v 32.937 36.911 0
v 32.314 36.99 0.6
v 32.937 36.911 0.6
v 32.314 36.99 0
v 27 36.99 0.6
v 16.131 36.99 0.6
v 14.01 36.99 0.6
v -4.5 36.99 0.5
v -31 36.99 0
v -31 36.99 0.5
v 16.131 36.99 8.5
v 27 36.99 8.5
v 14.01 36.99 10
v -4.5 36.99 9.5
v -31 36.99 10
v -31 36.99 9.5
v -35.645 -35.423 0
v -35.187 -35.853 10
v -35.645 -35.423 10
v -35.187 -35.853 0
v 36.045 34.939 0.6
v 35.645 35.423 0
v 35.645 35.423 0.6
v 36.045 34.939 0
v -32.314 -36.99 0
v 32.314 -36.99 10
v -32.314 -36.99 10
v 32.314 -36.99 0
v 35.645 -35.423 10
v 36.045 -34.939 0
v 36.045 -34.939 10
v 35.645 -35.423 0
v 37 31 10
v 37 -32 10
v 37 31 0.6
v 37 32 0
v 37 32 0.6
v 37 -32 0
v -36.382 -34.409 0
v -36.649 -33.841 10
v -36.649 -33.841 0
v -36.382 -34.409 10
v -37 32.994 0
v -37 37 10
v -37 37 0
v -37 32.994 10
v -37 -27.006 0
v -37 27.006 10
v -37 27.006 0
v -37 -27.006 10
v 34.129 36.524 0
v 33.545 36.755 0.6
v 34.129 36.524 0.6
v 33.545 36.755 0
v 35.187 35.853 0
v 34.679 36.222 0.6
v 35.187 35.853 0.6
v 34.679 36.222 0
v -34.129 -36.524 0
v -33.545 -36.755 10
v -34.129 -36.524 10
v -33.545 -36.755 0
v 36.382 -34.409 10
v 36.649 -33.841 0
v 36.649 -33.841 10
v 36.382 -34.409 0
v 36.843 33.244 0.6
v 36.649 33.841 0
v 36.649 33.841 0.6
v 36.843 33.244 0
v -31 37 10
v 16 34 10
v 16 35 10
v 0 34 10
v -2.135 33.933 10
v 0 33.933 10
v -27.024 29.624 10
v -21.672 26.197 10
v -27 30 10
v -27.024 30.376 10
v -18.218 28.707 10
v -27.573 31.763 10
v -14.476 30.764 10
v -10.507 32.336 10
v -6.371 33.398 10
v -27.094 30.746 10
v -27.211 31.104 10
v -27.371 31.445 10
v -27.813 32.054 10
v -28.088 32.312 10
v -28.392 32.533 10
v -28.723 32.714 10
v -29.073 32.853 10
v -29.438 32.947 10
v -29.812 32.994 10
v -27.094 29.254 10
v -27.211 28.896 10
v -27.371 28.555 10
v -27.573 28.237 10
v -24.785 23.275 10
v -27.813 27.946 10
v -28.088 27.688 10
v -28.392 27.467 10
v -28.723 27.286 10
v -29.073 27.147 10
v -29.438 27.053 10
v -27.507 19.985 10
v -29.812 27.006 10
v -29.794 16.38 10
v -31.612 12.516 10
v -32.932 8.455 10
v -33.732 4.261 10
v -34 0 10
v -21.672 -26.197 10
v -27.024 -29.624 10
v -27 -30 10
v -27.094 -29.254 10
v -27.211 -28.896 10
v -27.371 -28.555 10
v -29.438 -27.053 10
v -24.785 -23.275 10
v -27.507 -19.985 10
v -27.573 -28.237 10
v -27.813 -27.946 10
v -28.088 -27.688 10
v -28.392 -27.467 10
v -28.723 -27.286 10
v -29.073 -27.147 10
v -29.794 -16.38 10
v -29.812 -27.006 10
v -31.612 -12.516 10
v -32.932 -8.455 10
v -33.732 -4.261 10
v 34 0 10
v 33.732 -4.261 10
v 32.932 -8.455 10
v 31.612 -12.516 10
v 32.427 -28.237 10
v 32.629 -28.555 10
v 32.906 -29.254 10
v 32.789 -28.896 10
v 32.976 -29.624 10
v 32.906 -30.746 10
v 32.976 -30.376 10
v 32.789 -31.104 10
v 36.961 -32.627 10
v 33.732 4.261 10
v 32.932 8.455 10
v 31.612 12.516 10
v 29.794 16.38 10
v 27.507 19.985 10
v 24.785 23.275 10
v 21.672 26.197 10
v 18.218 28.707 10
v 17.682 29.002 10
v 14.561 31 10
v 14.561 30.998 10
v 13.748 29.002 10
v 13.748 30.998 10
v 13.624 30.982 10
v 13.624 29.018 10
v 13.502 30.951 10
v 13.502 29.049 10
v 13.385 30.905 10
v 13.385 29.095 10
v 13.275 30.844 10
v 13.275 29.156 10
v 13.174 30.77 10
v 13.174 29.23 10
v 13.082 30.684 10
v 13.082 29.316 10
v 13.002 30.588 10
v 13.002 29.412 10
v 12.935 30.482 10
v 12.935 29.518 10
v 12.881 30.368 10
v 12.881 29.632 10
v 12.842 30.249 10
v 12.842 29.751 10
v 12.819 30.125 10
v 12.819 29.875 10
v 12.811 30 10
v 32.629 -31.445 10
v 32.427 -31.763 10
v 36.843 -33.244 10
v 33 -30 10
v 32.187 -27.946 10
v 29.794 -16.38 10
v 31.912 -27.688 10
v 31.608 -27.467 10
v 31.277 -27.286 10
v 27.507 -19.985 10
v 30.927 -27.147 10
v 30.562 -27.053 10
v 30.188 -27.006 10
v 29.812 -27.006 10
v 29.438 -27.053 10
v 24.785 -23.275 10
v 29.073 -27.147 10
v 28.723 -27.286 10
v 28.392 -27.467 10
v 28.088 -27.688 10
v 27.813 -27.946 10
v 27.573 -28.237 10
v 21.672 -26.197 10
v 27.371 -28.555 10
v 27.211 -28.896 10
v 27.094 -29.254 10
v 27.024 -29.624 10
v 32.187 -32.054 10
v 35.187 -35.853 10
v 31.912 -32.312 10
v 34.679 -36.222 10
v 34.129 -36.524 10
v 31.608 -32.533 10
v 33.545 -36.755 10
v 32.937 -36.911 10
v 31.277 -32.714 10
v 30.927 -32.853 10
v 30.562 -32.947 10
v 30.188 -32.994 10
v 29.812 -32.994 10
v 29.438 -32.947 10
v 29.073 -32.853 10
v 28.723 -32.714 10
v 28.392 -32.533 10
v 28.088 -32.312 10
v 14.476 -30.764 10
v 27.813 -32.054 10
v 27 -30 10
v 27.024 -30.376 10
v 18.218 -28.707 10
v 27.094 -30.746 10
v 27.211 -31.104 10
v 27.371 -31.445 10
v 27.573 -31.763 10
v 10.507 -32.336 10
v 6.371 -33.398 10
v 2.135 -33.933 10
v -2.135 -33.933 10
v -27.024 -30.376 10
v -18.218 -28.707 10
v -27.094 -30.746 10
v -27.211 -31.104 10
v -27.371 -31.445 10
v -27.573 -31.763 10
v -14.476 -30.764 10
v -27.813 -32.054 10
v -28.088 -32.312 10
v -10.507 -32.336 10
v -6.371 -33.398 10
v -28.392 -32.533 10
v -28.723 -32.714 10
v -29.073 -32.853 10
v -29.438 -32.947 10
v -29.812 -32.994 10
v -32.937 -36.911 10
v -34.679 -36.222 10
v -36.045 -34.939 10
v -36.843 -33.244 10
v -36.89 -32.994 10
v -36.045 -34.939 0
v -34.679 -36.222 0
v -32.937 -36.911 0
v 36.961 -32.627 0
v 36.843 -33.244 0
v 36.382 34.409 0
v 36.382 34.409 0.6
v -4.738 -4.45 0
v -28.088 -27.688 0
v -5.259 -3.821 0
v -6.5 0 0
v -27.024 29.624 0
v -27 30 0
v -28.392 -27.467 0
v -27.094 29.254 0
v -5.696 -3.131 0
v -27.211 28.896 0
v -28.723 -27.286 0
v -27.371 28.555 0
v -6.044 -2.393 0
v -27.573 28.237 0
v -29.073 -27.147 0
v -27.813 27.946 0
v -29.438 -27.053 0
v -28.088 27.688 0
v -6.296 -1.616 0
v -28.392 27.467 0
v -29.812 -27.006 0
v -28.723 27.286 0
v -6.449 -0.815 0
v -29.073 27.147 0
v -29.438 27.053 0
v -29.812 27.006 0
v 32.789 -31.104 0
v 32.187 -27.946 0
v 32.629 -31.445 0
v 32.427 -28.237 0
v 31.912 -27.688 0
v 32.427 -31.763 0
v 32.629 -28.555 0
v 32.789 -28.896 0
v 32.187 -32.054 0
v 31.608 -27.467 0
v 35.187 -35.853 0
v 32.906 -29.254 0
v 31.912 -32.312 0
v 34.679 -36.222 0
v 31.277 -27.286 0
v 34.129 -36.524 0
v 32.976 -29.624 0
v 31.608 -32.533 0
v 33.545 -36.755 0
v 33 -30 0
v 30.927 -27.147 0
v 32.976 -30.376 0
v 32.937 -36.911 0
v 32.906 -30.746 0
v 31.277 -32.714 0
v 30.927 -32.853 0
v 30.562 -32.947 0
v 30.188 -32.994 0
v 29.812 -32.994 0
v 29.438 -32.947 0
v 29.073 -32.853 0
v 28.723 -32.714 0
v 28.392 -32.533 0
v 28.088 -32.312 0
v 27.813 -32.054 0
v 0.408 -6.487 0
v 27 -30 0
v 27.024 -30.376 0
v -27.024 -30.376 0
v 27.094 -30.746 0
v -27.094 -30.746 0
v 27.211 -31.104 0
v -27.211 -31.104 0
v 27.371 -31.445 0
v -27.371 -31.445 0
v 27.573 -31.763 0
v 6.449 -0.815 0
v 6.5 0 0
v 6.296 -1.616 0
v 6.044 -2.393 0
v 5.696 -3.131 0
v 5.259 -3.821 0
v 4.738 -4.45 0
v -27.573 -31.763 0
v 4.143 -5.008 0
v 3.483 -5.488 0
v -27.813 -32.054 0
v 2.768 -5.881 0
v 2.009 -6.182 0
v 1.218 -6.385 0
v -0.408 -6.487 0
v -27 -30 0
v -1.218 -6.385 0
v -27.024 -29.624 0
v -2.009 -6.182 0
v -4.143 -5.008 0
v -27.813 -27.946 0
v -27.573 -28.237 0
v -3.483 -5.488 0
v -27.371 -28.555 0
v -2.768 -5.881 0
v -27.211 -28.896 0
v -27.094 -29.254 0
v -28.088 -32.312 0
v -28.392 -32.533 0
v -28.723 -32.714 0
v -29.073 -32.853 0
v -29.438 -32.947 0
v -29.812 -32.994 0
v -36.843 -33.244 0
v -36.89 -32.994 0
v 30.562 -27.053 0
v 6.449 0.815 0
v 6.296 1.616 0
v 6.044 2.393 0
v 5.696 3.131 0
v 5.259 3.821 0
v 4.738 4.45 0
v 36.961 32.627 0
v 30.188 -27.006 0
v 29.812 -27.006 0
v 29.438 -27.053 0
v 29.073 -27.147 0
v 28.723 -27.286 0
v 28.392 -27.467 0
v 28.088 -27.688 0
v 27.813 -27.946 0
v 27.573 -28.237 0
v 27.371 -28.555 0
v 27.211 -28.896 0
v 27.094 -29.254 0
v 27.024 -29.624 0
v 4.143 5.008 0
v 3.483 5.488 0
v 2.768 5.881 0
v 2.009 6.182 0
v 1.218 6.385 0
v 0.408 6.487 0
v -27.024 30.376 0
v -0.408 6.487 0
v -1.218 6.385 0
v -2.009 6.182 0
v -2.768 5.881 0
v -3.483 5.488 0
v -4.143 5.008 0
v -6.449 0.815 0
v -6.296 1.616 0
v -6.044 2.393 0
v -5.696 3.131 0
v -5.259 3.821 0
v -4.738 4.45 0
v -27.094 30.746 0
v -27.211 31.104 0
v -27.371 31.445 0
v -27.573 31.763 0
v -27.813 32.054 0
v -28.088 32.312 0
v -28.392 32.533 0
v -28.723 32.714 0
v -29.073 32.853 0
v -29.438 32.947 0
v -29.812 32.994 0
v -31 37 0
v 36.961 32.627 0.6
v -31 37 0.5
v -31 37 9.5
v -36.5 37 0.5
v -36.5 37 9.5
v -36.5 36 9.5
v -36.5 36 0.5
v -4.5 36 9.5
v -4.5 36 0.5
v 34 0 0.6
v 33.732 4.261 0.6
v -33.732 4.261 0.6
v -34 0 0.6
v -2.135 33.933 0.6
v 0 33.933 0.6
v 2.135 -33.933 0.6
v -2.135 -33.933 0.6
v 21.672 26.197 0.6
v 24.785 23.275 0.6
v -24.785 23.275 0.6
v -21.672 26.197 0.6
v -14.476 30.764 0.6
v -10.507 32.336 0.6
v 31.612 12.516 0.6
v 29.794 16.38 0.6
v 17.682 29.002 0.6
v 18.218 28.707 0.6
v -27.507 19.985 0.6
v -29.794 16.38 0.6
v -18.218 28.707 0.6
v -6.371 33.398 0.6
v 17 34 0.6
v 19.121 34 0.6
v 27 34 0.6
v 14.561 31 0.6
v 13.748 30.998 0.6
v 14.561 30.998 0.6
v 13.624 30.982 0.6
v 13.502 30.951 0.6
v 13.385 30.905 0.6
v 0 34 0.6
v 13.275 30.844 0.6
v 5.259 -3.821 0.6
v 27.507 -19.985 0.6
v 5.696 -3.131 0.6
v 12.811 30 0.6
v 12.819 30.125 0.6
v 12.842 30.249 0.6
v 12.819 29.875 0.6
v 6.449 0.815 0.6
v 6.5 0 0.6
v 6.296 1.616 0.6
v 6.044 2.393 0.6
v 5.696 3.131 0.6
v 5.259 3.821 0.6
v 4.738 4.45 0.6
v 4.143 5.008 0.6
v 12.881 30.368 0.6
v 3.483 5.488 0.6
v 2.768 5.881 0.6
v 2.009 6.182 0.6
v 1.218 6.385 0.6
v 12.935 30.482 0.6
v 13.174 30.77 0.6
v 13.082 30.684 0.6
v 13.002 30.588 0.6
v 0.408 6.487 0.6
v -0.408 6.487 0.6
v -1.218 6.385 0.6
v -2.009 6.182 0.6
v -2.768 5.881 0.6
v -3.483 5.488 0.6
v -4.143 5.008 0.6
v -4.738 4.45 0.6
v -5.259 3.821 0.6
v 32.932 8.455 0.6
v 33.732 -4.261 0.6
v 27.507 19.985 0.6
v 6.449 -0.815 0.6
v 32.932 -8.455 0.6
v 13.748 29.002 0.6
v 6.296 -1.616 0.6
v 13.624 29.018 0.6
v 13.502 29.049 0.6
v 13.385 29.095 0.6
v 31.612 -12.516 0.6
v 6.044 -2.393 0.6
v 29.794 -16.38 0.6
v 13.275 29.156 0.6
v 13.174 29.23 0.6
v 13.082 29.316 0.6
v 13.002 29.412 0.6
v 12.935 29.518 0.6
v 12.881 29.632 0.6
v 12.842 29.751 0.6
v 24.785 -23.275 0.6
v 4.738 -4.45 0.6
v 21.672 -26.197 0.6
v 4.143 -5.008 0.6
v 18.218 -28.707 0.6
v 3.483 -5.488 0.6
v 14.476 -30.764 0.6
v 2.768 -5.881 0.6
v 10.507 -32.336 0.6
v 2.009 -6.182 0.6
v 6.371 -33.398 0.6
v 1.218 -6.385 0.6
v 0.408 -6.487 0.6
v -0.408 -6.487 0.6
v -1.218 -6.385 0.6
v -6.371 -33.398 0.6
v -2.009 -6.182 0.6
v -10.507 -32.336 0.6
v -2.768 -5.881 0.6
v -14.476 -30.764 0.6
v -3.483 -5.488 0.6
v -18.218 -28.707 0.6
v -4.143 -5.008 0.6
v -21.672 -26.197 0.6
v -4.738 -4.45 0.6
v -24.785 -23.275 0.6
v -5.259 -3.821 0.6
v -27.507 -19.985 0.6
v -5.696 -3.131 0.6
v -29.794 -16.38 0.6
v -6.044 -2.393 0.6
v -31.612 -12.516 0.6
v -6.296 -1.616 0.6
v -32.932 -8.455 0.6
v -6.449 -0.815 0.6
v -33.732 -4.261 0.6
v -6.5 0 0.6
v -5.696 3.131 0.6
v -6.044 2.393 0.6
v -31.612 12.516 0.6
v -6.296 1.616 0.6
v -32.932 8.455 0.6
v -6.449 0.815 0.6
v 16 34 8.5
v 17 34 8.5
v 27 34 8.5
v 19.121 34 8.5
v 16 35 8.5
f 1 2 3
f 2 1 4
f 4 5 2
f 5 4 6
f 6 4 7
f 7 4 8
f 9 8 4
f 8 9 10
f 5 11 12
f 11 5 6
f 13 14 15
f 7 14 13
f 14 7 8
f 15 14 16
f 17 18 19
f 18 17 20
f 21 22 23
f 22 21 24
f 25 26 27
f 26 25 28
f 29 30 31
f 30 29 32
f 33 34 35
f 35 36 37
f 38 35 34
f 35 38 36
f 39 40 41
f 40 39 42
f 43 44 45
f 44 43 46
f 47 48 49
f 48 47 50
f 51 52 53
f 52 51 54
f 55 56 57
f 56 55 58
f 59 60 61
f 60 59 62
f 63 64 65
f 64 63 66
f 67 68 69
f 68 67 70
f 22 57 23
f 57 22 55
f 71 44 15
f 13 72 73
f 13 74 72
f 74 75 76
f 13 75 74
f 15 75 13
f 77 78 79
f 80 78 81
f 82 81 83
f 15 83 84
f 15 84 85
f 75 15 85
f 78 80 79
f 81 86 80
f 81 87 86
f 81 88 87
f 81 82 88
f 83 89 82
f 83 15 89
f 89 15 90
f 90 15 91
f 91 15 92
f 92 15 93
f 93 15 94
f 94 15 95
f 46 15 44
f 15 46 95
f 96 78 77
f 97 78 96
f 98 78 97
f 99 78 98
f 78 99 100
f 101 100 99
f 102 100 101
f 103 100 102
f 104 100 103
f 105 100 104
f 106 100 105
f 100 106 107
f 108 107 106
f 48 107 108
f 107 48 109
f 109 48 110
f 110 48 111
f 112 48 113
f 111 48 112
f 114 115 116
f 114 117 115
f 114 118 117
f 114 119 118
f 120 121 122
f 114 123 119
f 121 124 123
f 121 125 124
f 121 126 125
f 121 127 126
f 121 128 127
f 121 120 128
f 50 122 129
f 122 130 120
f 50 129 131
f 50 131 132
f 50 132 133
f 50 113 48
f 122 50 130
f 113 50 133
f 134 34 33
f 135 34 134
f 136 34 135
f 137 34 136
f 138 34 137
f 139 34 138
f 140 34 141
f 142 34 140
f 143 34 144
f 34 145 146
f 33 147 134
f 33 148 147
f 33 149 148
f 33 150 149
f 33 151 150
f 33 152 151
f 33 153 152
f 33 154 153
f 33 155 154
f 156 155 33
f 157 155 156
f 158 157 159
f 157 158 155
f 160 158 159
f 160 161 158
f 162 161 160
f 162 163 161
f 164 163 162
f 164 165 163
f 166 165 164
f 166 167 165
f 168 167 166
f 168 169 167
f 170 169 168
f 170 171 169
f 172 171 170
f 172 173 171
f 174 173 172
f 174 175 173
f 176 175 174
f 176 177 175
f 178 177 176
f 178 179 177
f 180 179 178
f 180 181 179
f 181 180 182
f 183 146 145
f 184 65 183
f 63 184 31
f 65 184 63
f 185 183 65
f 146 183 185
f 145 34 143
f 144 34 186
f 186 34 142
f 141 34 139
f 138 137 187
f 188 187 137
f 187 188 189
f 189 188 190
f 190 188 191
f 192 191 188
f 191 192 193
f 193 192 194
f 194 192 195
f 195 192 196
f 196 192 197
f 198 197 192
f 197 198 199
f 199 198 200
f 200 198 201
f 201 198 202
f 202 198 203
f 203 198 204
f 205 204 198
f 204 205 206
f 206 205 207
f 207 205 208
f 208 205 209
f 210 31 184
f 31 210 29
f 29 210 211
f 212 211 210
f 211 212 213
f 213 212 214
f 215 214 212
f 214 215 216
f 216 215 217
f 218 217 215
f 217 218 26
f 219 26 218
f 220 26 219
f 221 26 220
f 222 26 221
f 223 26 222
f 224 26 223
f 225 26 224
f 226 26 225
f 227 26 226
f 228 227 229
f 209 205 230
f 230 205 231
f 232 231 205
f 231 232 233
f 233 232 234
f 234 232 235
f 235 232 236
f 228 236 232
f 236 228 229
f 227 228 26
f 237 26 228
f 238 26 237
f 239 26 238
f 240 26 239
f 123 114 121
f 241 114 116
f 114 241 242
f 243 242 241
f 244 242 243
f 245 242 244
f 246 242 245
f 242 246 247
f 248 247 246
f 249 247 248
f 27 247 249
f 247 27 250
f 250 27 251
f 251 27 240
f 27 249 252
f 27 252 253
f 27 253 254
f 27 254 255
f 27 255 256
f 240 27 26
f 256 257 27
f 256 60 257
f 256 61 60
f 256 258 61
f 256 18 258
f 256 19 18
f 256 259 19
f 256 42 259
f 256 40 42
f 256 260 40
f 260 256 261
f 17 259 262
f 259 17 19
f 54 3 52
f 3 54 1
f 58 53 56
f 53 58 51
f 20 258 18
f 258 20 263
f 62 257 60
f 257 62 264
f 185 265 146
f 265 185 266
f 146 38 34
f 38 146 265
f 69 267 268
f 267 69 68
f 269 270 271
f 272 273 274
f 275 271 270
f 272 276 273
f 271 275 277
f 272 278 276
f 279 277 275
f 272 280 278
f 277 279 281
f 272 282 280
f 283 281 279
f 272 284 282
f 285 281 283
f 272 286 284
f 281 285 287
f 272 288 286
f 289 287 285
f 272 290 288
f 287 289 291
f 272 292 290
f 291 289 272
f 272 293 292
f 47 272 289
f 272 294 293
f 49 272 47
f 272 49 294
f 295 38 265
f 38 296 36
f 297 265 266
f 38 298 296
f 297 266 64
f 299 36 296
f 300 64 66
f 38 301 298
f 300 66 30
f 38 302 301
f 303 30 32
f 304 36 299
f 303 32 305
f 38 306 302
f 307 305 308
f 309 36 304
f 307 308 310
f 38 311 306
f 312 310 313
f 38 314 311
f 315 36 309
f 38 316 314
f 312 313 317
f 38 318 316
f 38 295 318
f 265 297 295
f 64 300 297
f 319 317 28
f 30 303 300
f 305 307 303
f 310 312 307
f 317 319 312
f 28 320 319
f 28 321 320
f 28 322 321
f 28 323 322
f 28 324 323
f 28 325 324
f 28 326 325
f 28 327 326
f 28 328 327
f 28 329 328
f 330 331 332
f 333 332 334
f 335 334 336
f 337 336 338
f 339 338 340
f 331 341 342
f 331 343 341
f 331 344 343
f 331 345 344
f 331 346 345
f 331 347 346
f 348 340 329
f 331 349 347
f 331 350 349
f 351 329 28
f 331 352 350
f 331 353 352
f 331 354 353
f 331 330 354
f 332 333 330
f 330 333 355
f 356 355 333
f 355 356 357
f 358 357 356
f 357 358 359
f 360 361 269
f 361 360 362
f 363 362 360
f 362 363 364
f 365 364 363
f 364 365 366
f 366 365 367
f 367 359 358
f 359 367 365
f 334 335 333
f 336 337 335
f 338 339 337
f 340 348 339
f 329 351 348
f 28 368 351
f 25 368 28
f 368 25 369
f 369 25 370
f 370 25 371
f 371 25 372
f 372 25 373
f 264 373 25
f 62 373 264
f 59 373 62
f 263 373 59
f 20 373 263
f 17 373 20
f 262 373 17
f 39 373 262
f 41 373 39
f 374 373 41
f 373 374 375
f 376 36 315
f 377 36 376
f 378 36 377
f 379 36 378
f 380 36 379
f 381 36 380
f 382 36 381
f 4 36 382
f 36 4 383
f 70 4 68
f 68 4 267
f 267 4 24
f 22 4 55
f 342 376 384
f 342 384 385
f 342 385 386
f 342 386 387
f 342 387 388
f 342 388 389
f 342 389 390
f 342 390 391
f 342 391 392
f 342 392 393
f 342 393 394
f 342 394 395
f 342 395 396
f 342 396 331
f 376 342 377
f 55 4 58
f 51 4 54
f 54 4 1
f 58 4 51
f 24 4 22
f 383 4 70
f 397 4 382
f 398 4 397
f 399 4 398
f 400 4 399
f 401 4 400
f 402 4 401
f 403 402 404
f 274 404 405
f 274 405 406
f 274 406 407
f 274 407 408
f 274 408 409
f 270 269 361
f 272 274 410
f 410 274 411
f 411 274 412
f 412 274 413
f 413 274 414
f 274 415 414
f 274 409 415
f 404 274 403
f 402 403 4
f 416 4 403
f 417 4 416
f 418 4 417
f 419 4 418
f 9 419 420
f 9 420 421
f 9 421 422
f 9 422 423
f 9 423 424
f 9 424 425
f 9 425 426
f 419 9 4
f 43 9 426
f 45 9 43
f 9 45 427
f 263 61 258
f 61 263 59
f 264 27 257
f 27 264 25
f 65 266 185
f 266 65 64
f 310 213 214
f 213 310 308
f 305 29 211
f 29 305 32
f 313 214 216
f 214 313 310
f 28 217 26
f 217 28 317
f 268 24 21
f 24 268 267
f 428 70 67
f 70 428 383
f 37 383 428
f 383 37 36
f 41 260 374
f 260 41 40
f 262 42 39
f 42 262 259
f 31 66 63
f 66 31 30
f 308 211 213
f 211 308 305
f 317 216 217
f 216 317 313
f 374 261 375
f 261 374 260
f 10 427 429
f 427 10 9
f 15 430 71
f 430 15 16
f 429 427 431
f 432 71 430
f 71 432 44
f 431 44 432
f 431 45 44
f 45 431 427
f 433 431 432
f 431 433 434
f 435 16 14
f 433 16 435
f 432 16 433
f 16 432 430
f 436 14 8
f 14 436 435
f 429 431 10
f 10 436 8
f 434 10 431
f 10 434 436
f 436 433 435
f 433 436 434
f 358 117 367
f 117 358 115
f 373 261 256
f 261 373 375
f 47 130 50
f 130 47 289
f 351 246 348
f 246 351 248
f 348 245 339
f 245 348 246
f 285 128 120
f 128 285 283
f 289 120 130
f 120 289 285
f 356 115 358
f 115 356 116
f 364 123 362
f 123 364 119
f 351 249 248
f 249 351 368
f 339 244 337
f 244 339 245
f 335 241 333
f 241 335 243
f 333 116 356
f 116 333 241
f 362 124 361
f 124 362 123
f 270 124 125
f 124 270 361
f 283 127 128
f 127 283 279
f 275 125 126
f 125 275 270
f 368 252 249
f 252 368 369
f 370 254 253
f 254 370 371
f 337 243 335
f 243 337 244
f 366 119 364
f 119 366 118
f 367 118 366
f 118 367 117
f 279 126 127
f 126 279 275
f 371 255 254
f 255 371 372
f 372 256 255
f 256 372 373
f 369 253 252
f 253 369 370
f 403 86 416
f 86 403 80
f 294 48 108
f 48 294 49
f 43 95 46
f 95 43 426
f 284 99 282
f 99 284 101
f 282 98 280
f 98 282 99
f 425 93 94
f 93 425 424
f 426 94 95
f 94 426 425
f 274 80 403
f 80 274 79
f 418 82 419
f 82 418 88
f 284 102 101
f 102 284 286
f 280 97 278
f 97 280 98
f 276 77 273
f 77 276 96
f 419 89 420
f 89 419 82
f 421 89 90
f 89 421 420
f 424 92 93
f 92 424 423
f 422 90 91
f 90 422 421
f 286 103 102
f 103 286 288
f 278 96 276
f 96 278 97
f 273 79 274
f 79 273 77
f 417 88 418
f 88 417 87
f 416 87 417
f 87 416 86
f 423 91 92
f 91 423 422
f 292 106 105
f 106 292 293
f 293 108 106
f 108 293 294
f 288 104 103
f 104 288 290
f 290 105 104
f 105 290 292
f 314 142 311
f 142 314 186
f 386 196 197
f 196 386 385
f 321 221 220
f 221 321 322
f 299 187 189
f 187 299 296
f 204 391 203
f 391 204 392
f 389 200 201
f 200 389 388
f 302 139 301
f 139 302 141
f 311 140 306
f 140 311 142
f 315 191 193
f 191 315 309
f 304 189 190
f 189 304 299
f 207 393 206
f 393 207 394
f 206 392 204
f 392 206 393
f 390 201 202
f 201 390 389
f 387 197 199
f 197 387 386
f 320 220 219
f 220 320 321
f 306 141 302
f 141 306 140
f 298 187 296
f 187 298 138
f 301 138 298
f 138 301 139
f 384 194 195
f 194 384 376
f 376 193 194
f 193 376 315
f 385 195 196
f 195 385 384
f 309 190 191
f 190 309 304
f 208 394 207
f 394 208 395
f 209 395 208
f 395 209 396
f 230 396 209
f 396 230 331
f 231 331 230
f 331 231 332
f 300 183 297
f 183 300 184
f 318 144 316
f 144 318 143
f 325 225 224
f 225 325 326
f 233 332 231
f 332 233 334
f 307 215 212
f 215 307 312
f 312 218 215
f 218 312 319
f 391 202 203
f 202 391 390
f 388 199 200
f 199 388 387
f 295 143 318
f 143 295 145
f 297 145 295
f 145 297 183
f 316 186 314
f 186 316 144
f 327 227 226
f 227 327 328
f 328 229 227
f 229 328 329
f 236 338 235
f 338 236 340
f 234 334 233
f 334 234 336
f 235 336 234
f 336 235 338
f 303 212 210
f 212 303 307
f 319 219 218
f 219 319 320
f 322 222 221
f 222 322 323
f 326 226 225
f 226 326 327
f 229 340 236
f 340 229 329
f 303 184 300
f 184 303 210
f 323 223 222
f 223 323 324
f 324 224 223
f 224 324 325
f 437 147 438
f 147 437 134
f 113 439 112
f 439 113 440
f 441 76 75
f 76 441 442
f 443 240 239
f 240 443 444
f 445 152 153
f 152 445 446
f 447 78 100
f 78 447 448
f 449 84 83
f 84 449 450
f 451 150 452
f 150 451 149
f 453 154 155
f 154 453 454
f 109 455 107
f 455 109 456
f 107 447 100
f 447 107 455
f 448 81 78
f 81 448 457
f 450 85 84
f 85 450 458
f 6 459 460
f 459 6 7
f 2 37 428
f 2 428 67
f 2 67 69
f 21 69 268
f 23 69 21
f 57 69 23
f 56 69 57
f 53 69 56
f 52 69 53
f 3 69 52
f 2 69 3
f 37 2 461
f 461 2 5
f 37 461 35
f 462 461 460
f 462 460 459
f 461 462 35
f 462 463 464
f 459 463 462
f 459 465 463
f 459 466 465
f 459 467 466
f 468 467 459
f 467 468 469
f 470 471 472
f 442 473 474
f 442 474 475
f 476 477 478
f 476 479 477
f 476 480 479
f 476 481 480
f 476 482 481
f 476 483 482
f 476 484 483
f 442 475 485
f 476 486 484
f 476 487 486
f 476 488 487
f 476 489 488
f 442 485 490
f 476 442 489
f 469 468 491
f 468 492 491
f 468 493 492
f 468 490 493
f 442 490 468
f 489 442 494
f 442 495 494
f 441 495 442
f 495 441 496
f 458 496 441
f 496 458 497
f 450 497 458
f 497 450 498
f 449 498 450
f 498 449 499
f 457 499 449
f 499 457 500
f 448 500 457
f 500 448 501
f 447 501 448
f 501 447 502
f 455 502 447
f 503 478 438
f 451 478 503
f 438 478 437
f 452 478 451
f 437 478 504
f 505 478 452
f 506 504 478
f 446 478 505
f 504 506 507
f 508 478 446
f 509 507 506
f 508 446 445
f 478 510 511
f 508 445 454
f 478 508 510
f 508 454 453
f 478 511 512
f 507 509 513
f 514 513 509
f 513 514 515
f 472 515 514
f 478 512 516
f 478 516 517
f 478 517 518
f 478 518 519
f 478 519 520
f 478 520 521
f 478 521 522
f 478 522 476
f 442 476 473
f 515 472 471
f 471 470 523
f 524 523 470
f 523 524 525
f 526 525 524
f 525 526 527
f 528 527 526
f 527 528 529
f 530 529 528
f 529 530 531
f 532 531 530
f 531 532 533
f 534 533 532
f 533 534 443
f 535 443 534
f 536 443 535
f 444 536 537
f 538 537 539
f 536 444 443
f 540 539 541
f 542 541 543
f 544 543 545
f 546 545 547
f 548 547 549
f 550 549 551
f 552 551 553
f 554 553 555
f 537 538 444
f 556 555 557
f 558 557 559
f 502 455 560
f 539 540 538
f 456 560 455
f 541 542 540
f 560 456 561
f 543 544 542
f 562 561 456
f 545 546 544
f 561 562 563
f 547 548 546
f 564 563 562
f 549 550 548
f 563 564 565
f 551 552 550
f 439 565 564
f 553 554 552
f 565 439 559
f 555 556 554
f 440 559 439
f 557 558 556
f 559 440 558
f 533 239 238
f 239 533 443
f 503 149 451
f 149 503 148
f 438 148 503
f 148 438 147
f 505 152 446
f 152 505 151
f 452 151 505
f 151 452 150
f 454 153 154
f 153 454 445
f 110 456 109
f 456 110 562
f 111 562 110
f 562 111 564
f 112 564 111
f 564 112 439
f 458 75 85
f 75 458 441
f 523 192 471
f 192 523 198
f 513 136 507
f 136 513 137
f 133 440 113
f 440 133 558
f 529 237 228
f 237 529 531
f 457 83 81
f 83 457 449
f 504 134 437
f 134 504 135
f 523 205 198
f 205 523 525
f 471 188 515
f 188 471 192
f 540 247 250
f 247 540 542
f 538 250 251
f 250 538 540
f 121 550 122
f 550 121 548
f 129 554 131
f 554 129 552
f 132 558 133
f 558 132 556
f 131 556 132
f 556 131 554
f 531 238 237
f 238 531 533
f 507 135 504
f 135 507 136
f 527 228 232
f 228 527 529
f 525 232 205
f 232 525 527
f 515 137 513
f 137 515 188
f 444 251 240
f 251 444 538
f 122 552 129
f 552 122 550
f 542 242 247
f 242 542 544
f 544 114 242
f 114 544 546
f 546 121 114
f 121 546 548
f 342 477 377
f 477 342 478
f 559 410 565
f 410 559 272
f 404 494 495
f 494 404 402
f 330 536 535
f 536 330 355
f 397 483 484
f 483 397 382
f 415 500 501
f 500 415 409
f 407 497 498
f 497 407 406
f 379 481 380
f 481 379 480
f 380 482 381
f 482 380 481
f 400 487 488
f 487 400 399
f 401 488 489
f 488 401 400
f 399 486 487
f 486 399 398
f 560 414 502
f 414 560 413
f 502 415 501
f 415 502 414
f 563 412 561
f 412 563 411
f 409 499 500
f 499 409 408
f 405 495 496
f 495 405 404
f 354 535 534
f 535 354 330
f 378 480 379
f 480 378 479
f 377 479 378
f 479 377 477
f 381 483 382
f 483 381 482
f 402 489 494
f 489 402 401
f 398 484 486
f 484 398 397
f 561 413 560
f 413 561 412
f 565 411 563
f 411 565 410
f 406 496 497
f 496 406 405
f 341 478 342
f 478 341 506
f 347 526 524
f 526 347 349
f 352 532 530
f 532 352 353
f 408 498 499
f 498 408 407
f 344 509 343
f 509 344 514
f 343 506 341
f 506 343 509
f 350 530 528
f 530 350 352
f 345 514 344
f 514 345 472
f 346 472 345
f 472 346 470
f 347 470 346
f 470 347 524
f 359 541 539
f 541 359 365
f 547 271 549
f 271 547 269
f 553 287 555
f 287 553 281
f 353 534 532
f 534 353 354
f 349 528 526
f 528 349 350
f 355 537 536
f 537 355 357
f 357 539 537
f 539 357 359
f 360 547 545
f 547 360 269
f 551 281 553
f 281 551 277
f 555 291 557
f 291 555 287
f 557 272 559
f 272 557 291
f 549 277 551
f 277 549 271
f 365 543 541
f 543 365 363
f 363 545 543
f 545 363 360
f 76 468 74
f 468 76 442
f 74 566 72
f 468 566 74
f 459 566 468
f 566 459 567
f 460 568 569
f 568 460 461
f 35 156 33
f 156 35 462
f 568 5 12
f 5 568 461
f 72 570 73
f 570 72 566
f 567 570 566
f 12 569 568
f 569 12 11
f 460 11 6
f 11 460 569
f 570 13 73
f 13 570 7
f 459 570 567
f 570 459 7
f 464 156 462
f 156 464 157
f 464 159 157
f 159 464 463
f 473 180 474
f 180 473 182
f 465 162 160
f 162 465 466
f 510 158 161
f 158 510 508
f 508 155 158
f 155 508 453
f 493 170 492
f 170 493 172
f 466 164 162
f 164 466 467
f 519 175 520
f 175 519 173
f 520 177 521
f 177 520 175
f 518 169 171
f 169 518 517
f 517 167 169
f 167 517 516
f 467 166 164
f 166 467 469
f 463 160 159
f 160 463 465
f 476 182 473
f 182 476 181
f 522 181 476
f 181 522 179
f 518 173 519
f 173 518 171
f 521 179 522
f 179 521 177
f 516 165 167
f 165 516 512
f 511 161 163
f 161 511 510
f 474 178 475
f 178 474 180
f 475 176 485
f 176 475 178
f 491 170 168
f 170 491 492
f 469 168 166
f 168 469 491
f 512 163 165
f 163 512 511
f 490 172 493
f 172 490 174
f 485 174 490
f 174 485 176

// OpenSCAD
$fn = 50;


union() {
	difference() {
		union() {
			translate(v = [0, 0, 0]) {
				rotate(a = [0, 0, 0]) {
					hull() {
						translate(v = [-32.0000000000, 32.0000000000, 0]) {
							rotate(a = [0, 0, 0]) {
								translate(v = [0, 0, 0]) {
									rotate(a = [0, 0, 0]) {
										cylinder(h = 10, r = 5);
									}
								}
							}
						}
						translate(v = [32.0000000000, 32.0000000000, 0]) {
							rotate(a = [0, 0, 0]) {
								translate(v = [0, 0, 0]) {
									rotate(a = [0, 0, 0]) {
										cylinder(h = 10, r = 5);
									}
								}
							}
						}
						translate(v = [-32.0000000000, -32.0000000000, 0]) {
							rotate(a = [0, 0, 0]) {
								translate(v = [0, 0, 0]) {
									rotate(a = [0, 0, 0]) {
										cylinder(h = 10, r = 5);
									}
								}
							}
						}
						translate(v = [32.0000000000, -32.0000000000, 0]) {
							rotate(a = [0, 0, 0]) {
								translate(v = [0, 0, 0]) {
									rotate(a = [0, 0, 0]) {
										cylinder(h = 10, r = 5);
									}
								}
							}
						}
					}
				}
			}
			translate(v = [-37.0000000000, 31.0000000000, 0]) {
				rotate(a = [0, 0, 0]) {
					cube(size = [6, 6, 10]);
				}
			}
		}
		union() {
			#translate(v = [-36.5000000000, 36.0000000000, 0.5000000000]) {
				rotate(a = [0, 0, 0]) {
					cube(size = [32, 1, 9.0000000000]);
				}
			}
			translate(v = [-37.5000000000, -30.0000000000, -125]) {
				rotate(a = [0, 0, 0]) {
					hull() {
						translate(v = [7.5000000000, 0, 0]) {
							rotate(a = [0, 0, 0]) {
								translate(v = [0, 0, 0]) {
									rotate(a = [0, 0, 0]) {
										cylinder(h = 250, r = 3.0000000000);
									}
								}
							}
						}
						translate(v = [-7.5000000000, 0, 0]) {
							rotate(a = [0, 0, 0]) {
								translate(v = [0, 0, 0]) {
									rotate(a = [0, 0, 0]) {
										cylinder(h = 250, r = 3.0000000000);
									}
								}
							}
						}
					}
				}
			}
			translate(v = [-37.5000000000, 30.0000000000, -125]) {
				rotate(a = [0, 0, 0]) {
					hull() {
						translate(v = [7.5000000000, 0, 0]) {
							rotate(a = [0, 0, 0]) {
								translate(v = [0, 0, 0]) {
									rotate(a = [0, 0, 0]) {
										cylinder(h = 250, r = 3.0000000000);
									}
								}
							}
						}
						translate(v = [-7.5000000000, 0, 0]) {
							rotate(a = [0, 0, 0]) {
								translate(v = [0, 0, 0]) {
									rotate(a = [0, 0, 0]) {
										cylinder(h = 250, r = 3.0000000000);
									}
								}
							}
						}
					}
				}
			}
			translate(v = [30.0000000000, -30.0000000000, -125.0000000000]) {
				rotate(a = [0, 0, 0]) {
					cylinder(h = 250, r = 3.0000000000);
				}
			}
			translate(v = [0, 0, 0.6000000000]) {
				rotate(a = [0, 0, 0]) {
					cylinder(h = 12.4000000000, r = 34.0000000000);
				}
			}
			translate(v = [0, 0, -5.0000000000]) {
				rotate(a = [0, 0, 0]) {
					cylinder(h = 10, r = 6.5000000000);
				}
			}
			translate(v = [0.0000000000, 31.0000000000, 0.6000000000]) {
				rotate(a = [0, 0, 0]) {
					cube(size = [37.0000000000, 3, 12.4000000000]);
				}
			}
			translate(v = [27.0000000000, 31.0000000000, 0.6000000000]) {
				rotate(a = [0, 0, 0]) {
					cube(size = [10, 6, 12.4000000000]);
				}
			}
			translate(v = [16.0000000000, 31.0000000000, 8.5000000000]) {
				rotate(a = [0, 0, 0]) {
					cube(size = [21, 6, 1.5000000000]);
				}
			}
			translate(v = [13.2500000000, 37.7500000000, 0.6000000000]) {
				rotate(a = [0, 0, -45]) {
					cube(size = [7.5000000000, 1.5000000000, 12.4000000000]);
				}
			}
			translate(v = [7.0610000000, 29.0000000000, 0.6000000000]) {
				rotate(a = [0, 0, 0]) {
					cube(size = [7.5000000000, 2, 9.4000000000]);
				}
			}
		}
	}
	union() {
		translate(v = [16.3110000000, 30.0000000000, 0]) {
			rotate(a = [0, 0, 0]) {
				hull() {
					translate(v = [2.5000000000, 0, 0]) {
						rotate(a = [0, 0, 0]) {
							#translate(v = [0, 0, 0]) {
								rotate(a = [0, 0, 0]) {
									cylinder(h = 10, r = 1.0000000000);
								}
							}
						}
					}
					translate(v = [-2.5000000000, 0, 0]) {
						rotate(a = [0, 0, 0]) {
							#translate(v = [0, 0, 0]) {
								rotate(a = [0, 0, 0]) {
									cylinder(h = 10, r = 1.0000000000);
								}
							}
						}
					}
				}
			}
		}
	}
}
